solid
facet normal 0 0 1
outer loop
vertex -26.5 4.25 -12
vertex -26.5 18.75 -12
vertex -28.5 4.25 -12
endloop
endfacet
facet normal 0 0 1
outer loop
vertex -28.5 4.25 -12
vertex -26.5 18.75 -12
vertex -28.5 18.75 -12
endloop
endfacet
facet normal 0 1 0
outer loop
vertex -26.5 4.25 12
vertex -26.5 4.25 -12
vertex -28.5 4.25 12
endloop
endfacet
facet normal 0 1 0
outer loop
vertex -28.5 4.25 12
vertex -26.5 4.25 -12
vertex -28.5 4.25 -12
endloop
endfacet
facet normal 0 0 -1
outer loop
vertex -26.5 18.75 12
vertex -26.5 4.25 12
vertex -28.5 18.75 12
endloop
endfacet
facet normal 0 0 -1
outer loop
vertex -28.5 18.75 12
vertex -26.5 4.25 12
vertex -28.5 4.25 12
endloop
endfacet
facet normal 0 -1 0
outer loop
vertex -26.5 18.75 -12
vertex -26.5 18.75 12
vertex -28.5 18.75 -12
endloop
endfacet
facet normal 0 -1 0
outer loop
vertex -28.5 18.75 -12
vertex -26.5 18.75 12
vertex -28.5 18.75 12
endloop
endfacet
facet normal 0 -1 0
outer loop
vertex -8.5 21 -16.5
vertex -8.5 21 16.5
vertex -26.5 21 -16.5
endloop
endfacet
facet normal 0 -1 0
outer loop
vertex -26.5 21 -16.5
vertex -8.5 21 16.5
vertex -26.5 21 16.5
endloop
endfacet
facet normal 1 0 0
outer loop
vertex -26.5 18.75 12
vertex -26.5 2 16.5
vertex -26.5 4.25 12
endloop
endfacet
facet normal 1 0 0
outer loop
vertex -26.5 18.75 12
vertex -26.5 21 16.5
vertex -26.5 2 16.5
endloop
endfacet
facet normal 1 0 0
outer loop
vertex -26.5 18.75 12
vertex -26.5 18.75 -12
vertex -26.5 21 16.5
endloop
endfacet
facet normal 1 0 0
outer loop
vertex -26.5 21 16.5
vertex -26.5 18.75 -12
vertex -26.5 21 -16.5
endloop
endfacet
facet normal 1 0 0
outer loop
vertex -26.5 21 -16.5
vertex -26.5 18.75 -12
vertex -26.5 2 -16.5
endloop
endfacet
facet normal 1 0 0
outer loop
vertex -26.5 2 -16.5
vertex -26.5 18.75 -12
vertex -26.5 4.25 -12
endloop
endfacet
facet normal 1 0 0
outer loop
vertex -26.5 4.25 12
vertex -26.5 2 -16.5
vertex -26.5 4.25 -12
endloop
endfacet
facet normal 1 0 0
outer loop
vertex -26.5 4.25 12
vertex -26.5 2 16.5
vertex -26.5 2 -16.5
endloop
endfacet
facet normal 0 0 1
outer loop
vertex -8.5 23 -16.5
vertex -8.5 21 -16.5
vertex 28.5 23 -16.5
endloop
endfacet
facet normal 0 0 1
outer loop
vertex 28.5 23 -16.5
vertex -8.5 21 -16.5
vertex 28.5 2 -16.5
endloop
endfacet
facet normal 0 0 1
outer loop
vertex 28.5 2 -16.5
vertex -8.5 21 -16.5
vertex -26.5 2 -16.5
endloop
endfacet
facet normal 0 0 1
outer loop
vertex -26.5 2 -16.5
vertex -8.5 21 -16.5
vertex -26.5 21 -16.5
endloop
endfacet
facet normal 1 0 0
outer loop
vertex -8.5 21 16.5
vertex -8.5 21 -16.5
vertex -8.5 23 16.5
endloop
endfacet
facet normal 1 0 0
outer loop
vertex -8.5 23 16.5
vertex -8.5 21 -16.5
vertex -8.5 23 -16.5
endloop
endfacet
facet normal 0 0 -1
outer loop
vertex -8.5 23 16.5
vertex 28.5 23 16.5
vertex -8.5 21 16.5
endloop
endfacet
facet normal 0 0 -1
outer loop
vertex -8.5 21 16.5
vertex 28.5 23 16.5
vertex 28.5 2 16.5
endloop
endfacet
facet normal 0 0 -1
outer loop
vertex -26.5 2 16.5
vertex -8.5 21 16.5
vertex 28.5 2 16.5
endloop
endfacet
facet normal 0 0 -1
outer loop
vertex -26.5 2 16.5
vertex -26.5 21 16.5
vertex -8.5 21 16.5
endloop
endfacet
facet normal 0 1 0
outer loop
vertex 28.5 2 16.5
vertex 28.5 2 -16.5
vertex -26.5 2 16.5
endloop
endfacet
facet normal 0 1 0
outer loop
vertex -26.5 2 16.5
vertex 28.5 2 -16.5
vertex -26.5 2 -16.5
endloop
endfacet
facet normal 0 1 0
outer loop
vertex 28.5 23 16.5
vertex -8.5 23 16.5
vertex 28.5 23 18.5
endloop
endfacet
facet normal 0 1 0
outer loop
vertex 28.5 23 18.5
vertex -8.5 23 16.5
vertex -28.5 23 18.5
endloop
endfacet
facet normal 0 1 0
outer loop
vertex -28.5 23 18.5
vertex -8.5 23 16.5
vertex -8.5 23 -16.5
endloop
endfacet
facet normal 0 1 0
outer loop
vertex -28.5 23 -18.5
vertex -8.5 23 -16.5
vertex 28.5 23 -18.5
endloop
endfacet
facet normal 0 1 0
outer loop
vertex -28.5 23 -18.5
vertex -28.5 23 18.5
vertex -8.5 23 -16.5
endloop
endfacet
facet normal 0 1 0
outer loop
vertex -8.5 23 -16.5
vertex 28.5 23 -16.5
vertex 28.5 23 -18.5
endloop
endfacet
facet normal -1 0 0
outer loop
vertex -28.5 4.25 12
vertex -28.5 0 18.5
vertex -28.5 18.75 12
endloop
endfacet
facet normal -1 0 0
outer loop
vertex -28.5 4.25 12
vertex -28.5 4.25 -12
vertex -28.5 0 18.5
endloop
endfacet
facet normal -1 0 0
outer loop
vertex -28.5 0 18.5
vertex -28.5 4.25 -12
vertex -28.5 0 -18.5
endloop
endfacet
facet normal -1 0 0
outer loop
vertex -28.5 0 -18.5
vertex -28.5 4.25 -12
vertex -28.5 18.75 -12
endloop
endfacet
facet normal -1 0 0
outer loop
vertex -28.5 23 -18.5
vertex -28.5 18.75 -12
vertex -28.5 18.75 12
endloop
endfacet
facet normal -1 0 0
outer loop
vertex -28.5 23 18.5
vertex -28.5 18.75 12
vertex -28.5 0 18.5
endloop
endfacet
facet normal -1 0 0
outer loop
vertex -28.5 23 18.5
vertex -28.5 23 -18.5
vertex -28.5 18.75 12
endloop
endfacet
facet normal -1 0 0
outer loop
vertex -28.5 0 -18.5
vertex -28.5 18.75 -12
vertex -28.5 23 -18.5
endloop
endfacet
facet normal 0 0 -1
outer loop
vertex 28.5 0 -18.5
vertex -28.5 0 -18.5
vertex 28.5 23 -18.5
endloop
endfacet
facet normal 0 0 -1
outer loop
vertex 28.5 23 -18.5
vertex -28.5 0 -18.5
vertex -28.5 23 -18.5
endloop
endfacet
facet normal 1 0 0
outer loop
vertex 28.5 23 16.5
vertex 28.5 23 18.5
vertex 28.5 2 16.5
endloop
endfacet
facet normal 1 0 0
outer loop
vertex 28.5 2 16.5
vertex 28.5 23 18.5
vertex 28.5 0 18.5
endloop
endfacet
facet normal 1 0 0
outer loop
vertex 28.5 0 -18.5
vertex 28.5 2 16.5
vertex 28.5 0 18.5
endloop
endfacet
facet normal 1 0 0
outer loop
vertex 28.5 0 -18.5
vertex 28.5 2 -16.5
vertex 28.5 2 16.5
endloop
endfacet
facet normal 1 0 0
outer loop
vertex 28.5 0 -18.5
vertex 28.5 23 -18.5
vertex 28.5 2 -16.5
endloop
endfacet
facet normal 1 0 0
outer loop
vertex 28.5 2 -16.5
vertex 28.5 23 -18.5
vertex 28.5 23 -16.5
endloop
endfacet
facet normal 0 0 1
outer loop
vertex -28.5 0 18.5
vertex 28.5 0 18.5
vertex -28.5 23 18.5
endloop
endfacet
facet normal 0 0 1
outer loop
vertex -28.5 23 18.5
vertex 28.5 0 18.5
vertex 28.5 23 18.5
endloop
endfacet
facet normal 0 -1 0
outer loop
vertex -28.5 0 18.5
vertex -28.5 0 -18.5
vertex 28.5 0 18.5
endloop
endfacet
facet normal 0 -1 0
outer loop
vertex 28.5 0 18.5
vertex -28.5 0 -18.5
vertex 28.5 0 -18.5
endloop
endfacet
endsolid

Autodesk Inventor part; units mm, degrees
ref_plane "YZ Plane" through (0, 0, 0) normal (1, 0, 0) x (0, 1, 0)
ref_plane "XZ Plane" through (0, 0, 0) normal (0, 1, 0) x (-1, 0, 0)
ref_plane "XY Plane" through (0, 0, 0) normal (0, 0, 1) x (1, 0, 0)
sketch "Esquisse1" plane through (0, 0, 0) normal (0, 1, 0) x (-1, 0, 0)
  line L0 (28.5, 18.5) -> (-28.5, 18.5)
  line L1 (-28.5, 18.5) -> (-28.5, -18.5)
  line L2 (-28.5, -18.5) -> (28.5, -18.5)
  line L3 (28.5, -18.5) -> (28.5, 18.5)
  line L4 (28.5, 18.5) -> (-28.5, -18.5) construction
  line L5 (-28.5, 18.5) -> (28.5, -18.5) construction
  point P0 (0, 0)
  dimension "d0" = 57
  dimension "d1" = 37
extrude "Extrusion1" add sketch "Esquisse1" along normal blind 23
sketch "Esquisse2" plane through (0, 23, 0) normal (0, 1, 0) x (1, 0, 0)
  line L0 (-28.5, -18.5) -> (28.5, -18.5) projected
  line L1 (28.5, -18.5) -> (28.5, 18.5) projected
  line L2 (-28.5, 18.5) -> (-8.5, 18.5)
  line L3 (-8.5, 18.5) -> (-8.5, -18.5)
  line L4 (-8.5, -18.5) -> (-28.5, -18.5)
  line L5 (-28.5, -18.5) -> (-28.5, 18.5)
  line L6 (28.5, 18.5) -> (28.5, 16.5) construction
  line L7 (28.5, -18.5) -> (28.5, -16.5) construction
  line L8 (28.5, 16.5) -> (-8.5, 16.5)
  line L9 (-8.5, 16.5) -> (-8.5, -16.5)
  line L10 (-8.5, -16.5) -> (28.5, -16.5)
  line L11 (28.5, -16.5) -> (28.5, 16.5)
  point P0 (0, 0)
  dimension "d4" = 20
  dimension "d5" = 2
  dimension "d6" = 2
  dimension "d7" = 33
extrude "Extrusion2" cut sketch "Esquisse2" against normal blind 21 contours L3 L8 L1 L10
sketch "Esquisse3" plane through (-8.5, 23, 16.5) normal (1, 0, 0) x (0, 0, -1)
  line L0 (0, 0) -> (0, -21) projected
  line L1 (33, -21) -> (0, -21)
  line L2 (0, -21) -> (0, -2)
  line L3 (0, -2) -> (33, -2)
  line L4 (33, -2) -> (33, -21)
  point P0 (16.5, -23)
  dimension "d10" = 19
extrude "Extrusion3" cut sketch "Esquisse3" against normal blind 18
sketch "Esquisse4" plane through (-28.5, 0, -18.5) normal (-1, 0, 0) x (0, 0, 1)
  line L0 (37, 0) -> (18.5, 0) construction
  line L1 (18.5, 0) -> (18.5, 11.5) construction
  line L2 (18.5, 11.5) -> (37, 11.5) construction
  line L3 (37, 11.5) -> (37, 0) construction
  line L4 (6.5, 4.25) -> (30.5, 4.25)
  line L5 (30.5, 4.25) -> (30.5, 18.75)
  line L6 (30.5, 18.75) -> (6.5, 18.75)
  line L7 (6.5, 18.75) -> (6.5, 4.25)
  line L8 (6.5, 4.25) -> (30.5, 18.75) construction
  line L9 (30.5, 4.25) -> (6.5, 18.75) construction
  dimension "d13" = 18.5
  dimension "d14" = 11.5
  dimension "d15" = 24
  dimension "d16" = 14.5
extrude "Extrusion4" cut sketch "Esquisse4" against normal blind 5
properties part number "mount pour oeil"
